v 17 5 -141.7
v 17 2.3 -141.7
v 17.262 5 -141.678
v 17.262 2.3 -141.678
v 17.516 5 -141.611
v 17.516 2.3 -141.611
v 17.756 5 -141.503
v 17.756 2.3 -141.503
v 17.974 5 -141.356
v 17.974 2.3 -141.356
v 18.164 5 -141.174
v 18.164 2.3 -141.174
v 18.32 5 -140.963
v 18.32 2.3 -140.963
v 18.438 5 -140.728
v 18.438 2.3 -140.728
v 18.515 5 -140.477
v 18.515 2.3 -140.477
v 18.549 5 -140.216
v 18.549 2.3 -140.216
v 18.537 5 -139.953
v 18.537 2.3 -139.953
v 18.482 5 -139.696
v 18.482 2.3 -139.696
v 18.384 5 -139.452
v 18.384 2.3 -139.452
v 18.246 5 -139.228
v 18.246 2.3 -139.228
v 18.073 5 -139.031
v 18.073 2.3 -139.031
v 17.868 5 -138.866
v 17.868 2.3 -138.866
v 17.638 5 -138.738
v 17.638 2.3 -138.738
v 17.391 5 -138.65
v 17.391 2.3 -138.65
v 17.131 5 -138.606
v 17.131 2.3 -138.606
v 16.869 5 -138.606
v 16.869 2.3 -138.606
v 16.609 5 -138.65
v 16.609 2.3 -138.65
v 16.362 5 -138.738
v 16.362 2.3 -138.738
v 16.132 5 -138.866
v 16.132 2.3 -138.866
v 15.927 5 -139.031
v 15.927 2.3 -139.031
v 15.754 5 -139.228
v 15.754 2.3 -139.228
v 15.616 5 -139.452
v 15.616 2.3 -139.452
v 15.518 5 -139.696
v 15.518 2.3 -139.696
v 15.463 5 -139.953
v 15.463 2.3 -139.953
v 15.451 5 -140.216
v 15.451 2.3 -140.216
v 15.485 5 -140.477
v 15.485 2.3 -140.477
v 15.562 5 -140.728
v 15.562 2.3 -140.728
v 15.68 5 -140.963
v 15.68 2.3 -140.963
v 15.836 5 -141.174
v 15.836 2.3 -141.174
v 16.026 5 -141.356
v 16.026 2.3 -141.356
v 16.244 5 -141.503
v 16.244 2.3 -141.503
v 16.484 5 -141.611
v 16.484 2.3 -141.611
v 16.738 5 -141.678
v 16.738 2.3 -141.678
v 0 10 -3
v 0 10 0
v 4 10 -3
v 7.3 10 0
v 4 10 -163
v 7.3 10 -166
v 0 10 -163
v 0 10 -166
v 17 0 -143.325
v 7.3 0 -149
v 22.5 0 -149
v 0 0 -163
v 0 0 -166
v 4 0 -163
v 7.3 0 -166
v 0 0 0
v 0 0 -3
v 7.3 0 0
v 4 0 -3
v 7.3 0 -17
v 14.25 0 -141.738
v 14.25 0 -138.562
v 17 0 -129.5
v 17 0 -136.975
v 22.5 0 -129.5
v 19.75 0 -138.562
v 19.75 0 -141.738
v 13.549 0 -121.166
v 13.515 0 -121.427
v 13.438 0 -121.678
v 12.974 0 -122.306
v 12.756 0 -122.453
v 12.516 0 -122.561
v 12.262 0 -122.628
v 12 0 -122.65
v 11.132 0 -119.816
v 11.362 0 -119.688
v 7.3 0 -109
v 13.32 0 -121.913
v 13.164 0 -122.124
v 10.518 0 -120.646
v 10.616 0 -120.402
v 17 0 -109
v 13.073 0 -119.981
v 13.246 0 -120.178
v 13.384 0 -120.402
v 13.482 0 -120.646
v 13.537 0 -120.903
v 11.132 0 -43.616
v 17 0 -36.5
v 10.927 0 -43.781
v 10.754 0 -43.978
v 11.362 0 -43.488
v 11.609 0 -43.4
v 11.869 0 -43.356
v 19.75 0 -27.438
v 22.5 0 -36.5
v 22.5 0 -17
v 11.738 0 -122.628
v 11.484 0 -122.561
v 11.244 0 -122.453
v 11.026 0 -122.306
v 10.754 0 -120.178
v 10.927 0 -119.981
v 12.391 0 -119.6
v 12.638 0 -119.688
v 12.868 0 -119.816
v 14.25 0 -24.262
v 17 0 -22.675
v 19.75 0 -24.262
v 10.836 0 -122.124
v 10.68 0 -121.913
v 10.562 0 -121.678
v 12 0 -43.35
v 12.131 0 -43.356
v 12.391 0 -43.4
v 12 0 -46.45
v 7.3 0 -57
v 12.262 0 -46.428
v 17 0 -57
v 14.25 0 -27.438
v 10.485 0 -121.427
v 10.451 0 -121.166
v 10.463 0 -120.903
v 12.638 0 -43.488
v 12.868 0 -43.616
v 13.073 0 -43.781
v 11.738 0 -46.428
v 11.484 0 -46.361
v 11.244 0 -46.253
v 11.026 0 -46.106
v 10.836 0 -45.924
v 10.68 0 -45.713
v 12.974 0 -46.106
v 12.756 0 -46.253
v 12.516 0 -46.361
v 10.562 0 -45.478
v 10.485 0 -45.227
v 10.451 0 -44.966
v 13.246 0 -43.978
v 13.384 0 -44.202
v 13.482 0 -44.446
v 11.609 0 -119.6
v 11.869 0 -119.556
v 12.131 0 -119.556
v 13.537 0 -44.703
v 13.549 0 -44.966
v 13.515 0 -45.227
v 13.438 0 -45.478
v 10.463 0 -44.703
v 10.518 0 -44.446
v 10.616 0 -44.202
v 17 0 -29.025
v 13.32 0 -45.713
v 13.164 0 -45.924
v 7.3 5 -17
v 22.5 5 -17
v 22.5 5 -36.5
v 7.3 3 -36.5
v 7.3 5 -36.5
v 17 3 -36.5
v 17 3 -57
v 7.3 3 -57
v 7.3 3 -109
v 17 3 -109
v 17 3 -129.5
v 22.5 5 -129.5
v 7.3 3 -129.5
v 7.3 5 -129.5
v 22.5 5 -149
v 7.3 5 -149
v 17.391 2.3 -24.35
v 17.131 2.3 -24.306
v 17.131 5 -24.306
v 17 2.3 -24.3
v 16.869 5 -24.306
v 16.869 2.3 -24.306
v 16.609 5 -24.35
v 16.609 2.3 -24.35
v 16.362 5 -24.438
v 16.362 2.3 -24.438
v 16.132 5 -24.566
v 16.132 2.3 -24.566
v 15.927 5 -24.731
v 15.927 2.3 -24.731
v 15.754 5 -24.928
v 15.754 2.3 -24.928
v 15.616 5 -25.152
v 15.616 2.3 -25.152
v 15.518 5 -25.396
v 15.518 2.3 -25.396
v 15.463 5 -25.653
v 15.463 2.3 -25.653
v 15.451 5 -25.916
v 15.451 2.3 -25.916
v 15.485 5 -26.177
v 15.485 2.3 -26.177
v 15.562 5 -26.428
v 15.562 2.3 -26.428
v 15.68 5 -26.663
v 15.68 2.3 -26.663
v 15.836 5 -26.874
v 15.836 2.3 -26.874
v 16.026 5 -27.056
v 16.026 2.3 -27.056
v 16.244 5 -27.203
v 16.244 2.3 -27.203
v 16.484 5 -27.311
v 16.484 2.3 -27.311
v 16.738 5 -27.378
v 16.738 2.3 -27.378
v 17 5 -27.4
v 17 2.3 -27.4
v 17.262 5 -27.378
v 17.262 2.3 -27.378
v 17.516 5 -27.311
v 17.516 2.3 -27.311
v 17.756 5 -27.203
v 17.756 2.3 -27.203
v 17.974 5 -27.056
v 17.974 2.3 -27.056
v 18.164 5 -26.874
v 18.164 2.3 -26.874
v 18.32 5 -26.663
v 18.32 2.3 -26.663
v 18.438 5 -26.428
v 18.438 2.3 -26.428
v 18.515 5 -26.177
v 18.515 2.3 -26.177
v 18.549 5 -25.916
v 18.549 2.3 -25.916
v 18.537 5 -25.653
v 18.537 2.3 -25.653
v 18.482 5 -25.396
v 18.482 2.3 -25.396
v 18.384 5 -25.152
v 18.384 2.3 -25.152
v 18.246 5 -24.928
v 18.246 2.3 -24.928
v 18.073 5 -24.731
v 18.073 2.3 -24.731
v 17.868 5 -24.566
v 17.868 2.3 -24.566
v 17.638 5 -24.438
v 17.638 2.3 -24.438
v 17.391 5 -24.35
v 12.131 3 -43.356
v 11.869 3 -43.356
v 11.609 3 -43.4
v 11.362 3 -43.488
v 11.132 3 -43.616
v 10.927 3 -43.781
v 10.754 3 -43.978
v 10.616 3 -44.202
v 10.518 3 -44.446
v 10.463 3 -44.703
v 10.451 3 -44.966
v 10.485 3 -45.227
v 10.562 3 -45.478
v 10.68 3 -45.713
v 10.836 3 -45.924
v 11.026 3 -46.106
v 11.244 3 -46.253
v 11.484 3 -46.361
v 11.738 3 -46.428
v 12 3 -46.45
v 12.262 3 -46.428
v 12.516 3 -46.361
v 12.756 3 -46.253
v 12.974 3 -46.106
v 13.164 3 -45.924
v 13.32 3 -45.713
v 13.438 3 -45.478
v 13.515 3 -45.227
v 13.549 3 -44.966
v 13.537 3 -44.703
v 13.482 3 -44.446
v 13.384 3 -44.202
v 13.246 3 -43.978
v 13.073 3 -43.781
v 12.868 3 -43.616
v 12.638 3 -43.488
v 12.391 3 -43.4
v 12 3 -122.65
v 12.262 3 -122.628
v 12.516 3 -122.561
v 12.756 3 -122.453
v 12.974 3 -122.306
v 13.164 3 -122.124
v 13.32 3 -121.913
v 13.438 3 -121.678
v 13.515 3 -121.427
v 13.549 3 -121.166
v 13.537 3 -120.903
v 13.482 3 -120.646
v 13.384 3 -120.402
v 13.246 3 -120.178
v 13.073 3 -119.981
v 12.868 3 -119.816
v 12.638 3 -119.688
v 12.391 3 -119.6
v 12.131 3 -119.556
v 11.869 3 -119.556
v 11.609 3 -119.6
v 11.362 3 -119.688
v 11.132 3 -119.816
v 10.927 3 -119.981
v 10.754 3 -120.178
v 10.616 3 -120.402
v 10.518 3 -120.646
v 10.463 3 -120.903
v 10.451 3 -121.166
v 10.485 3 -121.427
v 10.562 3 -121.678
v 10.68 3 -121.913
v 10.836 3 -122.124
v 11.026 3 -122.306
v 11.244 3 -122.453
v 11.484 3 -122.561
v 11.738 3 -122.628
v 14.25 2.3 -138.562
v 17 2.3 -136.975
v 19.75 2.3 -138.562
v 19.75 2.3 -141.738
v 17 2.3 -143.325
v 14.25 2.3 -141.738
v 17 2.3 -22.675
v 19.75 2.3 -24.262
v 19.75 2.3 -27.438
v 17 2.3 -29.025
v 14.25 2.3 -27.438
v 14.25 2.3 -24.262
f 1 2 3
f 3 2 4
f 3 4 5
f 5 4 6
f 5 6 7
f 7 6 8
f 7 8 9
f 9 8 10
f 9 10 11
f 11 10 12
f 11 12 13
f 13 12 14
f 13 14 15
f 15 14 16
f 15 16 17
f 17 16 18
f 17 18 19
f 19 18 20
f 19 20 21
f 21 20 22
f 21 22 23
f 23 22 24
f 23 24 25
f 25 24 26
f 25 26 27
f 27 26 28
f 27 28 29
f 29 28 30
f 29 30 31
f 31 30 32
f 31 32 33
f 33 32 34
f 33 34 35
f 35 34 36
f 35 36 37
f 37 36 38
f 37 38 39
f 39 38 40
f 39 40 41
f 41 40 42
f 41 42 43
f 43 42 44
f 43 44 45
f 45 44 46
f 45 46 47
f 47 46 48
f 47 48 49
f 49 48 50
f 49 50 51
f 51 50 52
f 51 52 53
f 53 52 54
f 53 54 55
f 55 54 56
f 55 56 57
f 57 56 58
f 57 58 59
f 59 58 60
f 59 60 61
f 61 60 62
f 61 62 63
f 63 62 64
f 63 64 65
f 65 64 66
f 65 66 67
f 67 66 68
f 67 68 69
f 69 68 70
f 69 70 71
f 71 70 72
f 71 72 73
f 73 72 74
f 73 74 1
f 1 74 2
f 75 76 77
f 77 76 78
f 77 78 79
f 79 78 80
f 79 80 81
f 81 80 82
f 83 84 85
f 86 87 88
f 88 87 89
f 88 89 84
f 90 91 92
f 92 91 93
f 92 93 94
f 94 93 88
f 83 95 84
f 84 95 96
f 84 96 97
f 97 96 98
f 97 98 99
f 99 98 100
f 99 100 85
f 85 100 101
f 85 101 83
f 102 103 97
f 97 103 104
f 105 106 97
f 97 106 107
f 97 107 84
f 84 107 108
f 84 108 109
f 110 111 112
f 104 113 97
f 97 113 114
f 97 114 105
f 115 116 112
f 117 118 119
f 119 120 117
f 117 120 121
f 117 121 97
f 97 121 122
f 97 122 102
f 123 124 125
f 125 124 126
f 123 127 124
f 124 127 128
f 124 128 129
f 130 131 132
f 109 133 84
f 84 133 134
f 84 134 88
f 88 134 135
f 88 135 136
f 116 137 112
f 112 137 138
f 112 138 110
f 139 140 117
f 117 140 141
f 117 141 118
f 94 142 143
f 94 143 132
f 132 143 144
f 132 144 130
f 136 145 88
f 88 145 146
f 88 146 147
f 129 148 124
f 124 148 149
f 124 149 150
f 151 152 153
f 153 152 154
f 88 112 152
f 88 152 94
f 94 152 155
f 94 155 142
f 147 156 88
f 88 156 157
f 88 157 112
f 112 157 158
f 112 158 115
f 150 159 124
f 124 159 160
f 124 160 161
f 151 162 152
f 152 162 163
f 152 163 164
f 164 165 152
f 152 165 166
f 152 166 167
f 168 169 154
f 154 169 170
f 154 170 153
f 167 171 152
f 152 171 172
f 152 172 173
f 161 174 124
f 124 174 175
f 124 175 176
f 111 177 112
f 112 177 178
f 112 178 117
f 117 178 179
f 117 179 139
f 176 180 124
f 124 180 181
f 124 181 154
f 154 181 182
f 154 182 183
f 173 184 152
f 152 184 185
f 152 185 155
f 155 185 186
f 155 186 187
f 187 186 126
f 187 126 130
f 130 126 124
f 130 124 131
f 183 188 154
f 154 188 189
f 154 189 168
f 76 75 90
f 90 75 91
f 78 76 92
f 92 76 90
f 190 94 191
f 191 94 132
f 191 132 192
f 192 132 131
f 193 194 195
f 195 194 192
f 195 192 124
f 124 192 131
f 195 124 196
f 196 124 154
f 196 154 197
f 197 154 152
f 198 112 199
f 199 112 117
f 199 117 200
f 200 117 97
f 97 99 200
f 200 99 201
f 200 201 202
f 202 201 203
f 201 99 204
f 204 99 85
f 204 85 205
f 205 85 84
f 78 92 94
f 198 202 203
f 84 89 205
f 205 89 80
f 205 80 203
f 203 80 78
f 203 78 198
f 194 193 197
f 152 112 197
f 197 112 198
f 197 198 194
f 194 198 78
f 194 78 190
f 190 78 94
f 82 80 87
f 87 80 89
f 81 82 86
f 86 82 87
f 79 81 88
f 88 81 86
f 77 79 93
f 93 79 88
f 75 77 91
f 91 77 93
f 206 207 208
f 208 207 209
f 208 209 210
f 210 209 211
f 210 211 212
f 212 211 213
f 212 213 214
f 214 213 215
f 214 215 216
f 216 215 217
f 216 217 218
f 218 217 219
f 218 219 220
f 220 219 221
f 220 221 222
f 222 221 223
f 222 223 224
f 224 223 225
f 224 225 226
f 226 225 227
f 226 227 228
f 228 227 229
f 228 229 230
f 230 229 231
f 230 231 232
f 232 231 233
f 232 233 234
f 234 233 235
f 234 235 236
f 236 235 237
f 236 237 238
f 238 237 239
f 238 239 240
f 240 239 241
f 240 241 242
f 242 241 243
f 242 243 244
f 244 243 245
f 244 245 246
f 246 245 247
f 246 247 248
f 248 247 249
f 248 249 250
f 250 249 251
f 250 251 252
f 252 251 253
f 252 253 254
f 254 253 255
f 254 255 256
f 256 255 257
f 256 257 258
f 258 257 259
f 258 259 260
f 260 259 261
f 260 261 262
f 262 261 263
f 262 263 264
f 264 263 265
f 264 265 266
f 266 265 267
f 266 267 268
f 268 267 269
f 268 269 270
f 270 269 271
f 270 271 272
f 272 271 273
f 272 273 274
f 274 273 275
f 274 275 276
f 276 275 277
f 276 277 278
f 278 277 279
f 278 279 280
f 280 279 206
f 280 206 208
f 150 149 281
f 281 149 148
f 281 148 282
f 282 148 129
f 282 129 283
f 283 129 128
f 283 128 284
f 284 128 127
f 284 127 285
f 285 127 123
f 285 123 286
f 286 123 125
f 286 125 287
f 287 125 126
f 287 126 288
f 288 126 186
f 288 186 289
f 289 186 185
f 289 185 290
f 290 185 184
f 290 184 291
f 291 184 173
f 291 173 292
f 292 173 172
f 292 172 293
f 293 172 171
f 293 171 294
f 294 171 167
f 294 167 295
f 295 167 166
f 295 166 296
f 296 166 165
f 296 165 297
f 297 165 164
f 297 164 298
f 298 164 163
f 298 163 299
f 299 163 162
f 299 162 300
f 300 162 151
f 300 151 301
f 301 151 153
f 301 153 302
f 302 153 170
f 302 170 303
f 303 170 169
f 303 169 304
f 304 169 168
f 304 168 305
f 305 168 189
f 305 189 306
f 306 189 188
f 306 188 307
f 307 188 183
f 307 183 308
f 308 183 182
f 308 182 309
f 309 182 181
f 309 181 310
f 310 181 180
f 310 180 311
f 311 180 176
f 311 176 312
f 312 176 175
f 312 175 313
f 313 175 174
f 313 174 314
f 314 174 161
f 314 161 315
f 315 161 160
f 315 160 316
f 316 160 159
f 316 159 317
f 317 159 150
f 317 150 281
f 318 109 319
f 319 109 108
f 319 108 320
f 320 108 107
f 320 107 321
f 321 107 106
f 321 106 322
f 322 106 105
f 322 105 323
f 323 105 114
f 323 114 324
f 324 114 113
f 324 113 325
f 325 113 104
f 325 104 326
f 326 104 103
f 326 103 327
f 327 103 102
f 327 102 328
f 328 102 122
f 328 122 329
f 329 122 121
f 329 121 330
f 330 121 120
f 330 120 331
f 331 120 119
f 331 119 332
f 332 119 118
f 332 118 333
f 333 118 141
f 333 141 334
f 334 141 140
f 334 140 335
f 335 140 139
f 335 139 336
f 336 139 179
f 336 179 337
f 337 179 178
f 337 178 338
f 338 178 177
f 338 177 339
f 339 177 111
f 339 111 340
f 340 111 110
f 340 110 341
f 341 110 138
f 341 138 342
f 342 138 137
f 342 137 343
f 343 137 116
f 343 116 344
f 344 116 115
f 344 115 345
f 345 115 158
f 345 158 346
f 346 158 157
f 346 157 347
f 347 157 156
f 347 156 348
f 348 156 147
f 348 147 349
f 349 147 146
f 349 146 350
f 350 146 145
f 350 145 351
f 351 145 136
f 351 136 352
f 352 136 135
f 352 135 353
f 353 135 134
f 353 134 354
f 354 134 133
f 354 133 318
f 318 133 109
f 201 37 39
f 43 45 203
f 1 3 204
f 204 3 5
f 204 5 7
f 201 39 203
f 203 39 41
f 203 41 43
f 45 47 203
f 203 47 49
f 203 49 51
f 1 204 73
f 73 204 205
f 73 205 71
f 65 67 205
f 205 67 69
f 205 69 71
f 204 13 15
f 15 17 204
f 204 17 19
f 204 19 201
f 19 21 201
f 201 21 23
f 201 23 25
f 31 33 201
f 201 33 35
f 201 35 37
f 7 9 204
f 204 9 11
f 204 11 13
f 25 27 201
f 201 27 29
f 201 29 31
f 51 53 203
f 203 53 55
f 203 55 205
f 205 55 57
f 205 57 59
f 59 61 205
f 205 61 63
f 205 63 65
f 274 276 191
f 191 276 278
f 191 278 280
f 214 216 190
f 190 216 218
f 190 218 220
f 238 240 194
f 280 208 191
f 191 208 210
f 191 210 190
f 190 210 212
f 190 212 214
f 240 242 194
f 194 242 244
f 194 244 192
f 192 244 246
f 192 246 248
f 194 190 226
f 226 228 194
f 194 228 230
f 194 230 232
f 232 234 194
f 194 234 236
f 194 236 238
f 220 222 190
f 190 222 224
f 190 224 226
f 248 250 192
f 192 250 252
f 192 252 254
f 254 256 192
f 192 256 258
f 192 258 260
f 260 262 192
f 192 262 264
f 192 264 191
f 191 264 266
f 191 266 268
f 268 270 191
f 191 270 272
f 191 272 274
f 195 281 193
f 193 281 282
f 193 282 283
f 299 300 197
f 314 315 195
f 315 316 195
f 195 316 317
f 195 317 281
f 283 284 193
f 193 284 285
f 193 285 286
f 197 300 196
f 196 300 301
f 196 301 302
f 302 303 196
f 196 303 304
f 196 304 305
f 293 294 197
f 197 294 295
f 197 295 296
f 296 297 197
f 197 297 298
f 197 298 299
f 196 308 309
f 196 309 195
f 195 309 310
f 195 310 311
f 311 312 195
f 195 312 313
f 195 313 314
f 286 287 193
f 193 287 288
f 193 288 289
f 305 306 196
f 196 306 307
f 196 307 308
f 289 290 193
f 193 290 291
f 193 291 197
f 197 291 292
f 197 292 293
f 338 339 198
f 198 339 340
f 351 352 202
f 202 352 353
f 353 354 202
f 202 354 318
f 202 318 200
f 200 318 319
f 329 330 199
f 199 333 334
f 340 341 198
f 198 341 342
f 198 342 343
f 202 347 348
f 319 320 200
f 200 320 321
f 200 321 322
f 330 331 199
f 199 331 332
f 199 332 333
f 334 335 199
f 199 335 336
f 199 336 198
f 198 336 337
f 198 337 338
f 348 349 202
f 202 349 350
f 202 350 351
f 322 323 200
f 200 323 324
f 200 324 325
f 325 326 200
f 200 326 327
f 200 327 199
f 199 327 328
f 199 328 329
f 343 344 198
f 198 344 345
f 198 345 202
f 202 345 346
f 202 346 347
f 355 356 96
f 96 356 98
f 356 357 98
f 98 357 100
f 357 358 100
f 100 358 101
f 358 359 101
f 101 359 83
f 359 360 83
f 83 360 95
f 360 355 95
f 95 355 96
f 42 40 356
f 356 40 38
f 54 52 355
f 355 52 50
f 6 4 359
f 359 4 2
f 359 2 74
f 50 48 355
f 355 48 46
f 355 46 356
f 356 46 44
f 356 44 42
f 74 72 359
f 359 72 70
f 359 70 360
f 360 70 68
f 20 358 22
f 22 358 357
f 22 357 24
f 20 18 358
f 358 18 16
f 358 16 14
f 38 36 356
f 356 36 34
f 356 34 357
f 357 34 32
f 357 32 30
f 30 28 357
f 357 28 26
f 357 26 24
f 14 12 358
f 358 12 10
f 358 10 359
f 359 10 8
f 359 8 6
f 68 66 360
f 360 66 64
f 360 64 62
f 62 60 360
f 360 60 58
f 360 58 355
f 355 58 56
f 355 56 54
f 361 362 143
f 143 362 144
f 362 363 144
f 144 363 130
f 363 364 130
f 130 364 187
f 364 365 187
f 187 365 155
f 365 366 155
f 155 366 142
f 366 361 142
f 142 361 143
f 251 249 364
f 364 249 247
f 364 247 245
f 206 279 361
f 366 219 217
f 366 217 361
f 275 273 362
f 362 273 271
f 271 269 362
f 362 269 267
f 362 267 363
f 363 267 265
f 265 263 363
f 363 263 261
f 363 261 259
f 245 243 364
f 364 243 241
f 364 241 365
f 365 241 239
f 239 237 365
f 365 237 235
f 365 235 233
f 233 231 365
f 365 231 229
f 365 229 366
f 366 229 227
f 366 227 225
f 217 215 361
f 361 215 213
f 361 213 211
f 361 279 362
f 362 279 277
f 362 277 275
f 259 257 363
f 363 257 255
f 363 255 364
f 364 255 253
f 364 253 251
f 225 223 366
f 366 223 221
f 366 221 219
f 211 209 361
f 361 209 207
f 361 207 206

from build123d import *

# Parameters (mm, degrees)
SKETCH1_R           = 1.55
BOSS_EXTRUDE1_DEPTH = 10
SKETCH3_W           = 15.2
SKETCH3_H           = 132
CUT_EXTRUDE1_DEPTH  = 5
SKETCH4_W           = 9.7
SKETCH4_H           = 93
CUT_EXTRUDE2_DEPTH  = 2
CUT_EXTRUDE4_DEPTH  = 2.3


with BuildPart() as part:
    # Sketch1 → Boss-Extrude1 (new body)
    with BuildSketch(Plane(origin=(0, 0, 0), x_dir=(1, 0, 0), z_dir=(0, 1, 0))):
        Polygon((0, 0), (7.3, 0), (7.3, 17), (22.5, 17), (22.5, 36.5), (17, 36.5), (17, 57), (7.3, 57), (7.3, 109), (17, 109), (17, 129.5), (22.5, 129.5), (22.5, 149), (7.3, 149), (7.3, 166), (0, 166), (0, 163), (4, 163), (4, 3), (0, 3), align=None)
        with Locations((17, 25.85)):
            Circle(SKETCH1_R, mode=Mode.SUBTRACT)
        with Locations((12, 44.9)):
            Circle(SKETCH1_R, mode=Mode.SUBTRACT)
        with Locations((12, 121.1)):
            Circle(SKETCH1_R, mode=Mode.SUBTRACT)
        with Locations((17, 140.15)):
            Circle(SKETCH1_R, mode=Mode.SUBTRACT)
    extrude(amount=BOSS_EXTRUDE1_DEPTH)

    # Sketch3 → Cut-Extrude1 (cut)
    with BuildSketch(Plane(origin=(0, 10, 0), x_dir=(1, 0, 0), z_dir=(0, 1, 0))):
        with Locations((14.9, 83)):
            Rectangle(SKETCH3_W, SKETCH3_H)
    extrude(amount=-CUT_EXTRUDE1_DEPTH, mode=Mode.SUBTRACT)

    # Sketch4 → Cut-Extrude2 (cut)
    with BuildSketch(Plane(origin=(0, 5, 0), x_dir=(1, 0, 0), z_dir=(0, 1, 0))):
        with Locations((12.15, 83)):
            Rectangle(SKETCH4_W, SKETCH4_H)
    extrude(amount=-CUT_EXTRUDE2_DEPTH, mode=Mode.SUBTRACT)

    # Sketch5 → Cut-Extrude4 (cut)
    with BuildSketch(Plane.XZ):
        Polygon((19.75, -24.26228676), (19.75, -27.43771324), (17, -29.025426481), (14.25, -27.43771324), (14.25, -24.26228676), (17, -22.674573519), align=None)
        Polygon((14.25, -138.56228676), (14.25, -141.73771324), (17, -143.325426481), (19.75, -141.73771324), (19.75, -138.56228676), (17, -136.974573519), align=None)
    extrude(amount=-CUT_EXTRUDE4_DEPTH, mode=Mode.SUBTRACT)


solid = part.part
